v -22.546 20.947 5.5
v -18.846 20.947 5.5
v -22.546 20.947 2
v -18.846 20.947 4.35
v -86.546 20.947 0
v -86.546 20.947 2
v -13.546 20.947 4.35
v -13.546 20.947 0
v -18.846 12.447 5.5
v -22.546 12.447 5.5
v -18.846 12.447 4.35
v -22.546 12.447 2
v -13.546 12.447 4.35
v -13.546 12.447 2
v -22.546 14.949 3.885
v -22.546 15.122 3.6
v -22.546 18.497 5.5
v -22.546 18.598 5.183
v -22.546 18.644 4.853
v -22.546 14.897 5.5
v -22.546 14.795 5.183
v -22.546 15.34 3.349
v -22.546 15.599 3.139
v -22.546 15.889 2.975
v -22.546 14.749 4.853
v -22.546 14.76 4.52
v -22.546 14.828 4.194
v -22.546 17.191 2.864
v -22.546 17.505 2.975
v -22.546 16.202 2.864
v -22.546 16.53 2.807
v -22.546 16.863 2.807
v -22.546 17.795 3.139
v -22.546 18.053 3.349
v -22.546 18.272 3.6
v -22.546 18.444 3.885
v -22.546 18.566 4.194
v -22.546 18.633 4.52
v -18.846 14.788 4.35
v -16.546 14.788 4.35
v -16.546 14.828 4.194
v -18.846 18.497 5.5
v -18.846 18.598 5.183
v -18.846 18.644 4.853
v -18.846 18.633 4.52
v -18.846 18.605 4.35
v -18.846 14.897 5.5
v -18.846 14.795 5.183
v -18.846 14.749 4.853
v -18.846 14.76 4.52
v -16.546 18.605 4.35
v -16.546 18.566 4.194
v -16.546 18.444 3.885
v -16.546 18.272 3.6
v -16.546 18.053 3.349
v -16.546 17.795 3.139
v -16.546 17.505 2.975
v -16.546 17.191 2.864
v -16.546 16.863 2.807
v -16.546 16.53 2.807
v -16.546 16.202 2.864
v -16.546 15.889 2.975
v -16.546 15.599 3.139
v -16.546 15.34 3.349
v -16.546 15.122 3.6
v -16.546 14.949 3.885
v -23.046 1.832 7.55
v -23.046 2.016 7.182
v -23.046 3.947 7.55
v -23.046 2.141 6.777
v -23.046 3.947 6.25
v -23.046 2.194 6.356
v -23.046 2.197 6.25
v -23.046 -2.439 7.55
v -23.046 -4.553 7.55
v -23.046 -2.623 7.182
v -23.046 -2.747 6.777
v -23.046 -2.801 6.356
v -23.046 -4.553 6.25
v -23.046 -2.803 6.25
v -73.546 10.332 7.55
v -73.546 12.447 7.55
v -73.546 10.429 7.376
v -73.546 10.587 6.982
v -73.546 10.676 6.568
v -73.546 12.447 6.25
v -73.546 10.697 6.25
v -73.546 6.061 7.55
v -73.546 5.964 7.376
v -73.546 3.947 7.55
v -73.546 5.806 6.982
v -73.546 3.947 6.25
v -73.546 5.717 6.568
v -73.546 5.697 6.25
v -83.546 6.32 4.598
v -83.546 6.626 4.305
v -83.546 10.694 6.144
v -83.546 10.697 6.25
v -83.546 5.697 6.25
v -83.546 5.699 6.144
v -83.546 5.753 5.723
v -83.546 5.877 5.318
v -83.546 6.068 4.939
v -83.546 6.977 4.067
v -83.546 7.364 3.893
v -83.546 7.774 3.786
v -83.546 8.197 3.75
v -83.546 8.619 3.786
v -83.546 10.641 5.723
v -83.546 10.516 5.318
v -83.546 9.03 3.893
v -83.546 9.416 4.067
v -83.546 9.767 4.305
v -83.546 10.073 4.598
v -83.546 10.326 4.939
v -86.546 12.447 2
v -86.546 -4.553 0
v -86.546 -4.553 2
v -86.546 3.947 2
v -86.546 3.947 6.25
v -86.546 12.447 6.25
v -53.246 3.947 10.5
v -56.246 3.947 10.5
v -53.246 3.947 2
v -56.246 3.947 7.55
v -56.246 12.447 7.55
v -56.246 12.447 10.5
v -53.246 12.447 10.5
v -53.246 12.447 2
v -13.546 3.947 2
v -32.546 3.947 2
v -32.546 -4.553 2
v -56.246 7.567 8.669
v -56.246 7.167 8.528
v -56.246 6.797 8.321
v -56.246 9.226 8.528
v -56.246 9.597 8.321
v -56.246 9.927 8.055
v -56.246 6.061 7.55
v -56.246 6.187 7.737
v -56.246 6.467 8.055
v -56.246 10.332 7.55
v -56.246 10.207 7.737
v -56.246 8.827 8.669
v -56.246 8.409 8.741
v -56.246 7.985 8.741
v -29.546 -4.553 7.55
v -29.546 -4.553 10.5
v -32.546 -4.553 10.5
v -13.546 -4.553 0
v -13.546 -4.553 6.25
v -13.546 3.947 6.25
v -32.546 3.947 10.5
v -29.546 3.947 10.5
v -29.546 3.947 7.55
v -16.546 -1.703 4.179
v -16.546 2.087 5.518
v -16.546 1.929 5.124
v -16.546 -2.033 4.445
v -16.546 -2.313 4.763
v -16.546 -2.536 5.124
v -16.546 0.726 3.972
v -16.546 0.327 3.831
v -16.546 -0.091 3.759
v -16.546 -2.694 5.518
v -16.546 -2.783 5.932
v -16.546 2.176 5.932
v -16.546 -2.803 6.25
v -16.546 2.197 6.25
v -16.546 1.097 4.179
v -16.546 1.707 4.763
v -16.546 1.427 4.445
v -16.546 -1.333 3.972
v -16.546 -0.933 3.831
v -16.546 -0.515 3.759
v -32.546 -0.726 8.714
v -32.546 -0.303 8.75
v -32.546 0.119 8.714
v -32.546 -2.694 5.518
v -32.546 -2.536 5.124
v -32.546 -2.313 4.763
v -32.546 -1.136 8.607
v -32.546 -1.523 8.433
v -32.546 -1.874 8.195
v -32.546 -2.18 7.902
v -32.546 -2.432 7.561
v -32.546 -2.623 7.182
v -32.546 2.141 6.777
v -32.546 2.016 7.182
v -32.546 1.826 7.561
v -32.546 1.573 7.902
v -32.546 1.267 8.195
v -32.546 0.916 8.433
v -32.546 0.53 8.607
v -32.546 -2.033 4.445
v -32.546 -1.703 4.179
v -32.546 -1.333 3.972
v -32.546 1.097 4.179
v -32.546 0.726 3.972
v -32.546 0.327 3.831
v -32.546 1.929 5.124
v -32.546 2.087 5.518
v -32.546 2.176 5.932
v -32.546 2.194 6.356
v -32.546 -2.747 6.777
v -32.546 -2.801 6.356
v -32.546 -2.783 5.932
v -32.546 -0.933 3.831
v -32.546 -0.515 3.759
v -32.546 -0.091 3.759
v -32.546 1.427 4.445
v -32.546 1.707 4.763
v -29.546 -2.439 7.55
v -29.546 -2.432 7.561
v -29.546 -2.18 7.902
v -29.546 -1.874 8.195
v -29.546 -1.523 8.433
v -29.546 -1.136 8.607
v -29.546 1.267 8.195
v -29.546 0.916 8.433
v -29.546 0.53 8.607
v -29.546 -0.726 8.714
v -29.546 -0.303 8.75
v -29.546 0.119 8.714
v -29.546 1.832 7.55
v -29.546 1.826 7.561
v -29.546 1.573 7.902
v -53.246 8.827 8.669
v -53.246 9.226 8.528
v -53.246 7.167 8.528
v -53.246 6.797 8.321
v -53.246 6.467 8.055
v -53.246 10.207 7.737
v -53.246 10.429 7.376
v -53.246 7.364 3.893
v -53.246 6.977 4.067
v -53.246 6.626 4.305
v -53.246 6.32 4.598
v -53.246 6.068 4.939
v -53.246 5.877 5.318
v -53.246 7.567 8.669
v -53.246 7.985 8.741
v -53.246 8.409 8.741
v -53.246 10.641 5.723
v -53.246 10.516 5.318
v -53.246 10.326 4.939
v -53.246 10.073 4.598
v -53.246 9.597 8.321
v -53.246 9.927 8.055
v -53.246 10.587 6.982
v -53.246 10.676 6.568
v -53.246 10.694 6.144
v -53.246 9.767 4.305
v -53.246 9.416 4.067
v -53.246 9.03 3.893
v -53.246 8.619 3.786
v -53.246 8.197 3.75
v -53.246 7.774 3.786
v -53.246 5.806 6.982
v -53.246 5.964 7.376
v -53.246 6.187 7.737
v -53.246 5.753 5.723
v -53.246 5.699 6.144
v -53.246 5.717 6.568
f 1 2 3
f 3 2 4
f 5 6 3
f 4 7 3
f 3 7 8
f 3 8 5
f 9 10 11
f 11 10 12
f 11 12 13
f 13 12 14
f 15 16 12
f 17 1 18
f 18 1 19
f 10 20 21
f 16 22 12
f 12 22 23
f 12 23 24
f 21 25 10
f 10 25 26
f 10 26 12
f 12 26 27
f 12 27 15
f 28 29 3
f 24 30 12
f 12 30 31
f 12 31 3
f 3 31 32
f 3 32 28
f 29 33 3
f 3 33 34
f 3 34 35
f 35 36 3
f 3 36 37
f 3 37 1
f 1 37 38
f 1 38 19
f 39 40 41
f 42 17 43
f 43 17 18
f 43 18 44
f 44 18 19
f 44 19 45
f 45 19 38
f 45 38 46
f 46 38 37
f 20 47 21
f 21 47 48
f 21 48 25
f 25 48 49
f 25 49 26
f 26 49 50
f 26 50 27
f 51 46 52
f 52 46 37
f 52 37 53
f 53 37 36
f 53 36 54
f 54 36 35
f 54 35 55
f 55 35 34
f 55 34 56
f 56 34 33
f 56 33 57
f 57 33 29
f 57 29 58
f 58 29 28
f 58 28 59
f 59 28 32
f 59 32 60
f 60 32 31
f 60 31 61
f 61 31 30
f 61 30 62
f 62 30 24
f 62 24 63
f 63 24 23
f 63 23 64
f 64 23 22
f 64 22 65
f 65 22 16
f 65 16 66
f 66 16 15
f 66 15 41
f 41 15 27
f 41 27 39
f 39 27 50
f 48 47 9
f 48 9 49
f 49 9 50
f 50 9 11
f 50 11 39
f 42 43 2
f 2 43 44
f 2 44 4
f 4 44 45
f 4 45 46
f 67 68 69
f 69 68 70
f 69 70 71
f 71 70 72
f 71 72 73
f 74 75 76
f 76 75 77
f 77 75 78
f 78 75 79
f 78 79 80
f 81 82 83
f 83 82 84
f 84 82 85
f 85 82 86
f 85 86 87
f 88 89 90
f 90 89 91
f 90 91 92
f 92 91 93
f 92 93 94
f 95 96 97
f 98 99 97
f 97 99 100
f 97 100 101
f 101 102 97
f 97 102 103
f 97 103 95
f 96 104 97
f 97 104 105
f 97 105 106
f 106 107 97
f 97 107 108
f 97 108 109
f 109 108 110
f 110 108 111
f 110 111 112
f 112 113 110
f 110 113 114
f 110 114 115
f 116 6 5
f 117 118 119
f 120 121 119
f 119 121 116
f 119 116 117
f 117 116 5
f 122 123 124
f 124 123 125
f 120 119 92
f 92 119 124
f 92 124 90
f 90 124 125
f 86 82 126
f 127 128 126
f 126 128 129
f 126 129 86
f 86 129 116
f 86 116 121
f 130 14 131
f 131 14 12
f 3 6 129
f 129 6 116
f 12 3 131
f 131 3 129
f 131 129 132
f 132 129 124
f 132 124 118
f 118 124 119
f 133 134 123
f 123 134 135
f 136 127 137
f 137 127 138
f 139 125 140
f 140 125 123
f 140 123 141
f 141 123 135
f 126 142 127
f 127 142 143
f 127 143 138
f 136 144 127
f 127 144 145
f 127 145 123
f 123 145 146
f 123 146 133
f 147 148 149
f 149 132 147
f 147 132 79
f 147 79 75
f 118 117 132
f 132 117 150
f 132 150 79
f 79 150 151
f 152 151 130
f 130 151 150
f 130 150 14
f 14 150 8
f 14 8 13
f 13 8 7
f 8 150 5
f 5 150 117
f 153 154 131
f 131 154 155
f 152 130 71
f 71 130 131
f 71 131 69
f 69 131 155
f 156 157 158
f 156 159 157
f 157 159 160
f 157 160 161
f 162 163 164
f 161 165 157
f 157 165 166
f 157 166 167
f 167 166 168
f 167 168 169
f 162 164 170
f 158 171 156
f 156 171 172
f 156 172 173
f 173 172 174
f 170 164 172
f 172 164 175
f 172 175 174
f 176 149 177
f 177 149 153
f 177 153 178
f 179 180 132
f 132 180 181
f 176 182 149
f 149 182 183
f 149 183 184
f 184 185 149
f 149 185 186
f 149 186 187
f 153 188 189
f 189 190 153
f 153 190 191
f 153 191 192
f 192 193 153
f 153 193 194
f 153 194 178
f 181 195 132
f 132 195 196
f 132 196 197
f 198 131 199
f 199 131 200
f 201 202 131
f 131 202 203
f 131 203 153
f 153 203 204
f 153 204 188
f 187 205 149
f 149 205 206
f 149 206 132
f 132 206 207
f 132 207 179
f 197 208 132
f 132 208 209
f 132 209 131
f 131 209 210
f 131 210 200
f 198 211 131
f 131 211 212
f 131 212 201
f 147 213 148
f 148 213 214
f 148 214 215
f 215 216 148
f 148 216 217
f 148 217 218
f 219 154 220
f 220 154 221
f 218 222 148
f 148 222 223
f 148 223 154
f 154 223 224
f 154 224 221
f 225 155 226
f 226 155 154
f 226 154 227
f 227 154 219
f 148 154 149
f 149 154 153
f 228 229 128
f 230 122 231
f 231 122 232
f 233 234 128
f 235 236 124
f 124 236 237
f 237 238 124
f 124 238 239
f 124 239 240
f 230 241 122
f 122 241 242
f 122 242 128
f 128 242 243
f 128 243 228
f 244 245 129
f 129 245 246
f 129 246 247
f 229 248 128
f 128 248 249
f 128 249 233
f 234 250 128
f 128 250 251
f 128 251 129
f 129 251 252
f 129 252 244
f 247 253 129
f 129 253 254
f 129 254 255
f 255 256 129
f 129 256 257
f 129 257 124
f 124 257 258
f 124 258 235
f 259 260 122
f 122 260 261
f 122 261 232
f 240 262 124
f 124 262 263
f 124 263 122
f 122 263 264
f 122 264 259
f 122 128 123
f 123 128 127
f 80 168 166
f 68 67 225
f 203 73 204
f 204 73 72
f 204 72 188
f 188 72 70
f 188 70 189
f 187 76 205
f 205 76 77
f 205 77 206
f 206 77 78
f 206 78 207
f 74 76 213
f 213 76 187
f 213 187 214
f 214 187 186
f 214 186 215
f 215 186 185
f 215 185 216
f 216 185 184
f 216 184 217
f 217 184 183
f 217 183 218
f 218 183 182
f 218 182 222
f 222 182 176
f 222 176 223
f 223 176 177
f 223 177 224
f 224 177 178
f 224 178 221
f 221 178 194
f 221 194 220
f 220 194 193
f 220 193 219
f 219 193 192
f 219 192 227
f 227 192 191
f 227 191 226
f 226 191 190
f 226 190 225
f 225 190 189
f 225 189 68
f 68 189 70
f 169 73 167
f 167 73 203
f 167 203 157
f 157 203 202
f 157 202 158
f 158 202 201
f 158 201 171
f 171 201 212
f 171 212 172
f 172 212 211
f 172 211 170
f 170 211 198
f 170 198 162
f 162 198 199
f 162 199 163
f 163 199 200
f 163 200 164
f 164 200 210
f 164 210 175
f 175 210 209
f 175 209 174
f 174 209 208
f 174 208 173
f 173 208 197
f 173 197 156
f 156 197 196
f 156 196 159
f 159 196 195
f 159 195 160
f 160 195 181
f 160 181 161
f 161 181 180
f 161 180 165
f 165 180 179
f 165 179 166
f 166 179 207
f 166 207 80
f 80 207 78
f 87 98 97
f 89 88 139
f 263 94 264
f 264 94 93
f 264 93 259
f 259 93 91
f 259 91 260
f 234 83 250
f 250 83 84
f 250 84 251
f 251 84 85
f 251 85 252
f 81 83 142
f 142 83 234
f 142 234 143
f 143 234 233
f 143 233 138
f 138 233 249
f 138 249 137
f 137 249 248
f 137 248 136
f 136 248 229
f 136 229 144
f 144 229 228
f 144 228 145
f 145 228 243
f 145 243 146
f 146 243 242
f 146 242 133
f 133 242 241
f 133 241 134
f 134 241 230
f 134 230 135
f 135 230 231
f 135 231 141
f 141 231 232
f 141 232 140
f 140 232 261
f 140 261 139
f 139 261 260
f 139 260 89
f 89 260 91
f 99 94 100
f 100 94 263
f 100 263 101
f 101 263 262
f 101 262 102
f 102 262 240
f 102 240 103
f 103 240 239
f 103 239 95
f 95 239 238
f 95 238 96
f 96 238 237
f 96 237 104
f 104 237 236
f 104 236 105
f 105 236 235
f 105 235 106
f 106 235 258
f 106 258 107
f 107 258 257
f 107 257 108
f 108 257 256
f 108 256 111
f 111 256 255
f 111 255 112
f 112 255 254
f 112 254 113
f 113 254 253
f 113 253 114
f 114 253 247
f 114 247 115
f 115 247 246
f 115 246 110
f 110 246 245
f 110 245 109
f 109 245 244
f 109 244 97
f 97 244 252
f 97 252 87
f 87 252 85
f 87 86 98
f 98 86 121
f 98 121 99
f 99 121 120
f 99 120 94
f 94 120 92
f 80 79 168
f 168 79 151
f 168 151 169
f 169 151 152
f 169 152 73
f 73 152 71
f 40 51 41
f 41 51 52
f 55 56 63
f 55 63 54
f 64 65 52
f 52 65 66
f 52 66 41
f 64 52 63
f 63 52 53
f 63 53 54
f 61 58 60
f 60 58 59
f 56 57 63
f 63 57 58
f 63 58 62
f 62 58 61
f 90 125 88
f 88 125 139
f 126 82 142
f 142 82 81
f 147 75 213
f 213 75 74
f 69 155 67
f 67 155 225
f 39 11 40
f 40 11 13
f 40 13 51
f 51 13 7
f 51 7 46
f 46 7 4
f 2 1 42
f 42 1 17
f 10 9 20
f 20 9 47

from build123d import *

# Parameters (mm, degrees)
CROQUIS1_W              = 73
CROQUIS1_H              = 25.5
SALIENTE_EXTRUIR1_DEPTH = 2
CROQUIS2_W              = 3
CROQUIS2_H              = 8.5
SALIENTE_EXTRUIR2_DEPTH = 8.5
CROQUIS4_W              = 13
CROQUIS4_H              = 8.5
CROQUIS4_W_2            = 27.3
SALIENTE_EXTRUIR3_DEPTH = 6.05
CORTAR_EXTRUIR1_START   = -16
CROQUIS5_R              = 2.5
CORTAR_EXTRUIR1_DEPTH   = 16
CORTAR_EXTRUIR2_START   = -30.3
CROQUIS6_R              = 2.5
CORTAR_EXTRUIR2_DEPTH   = 30.3
CROQUIS7_W              = 10
CROQUIS7_H              = 8.5
CROQUIS7_W_2            = 6.5
CORTAR_EXTRUIR3_DEPTH   = 1.8
CROQUIS8_W              = 3
CROQUIS8_H              = 8.5
SALIENTE_EXTRUIR4_DEPTH = 4.85
CROQUIS9_R              = 1.95
CORTAR_EXTRUIR4_DEPTH   = 6
CORTAR_EXTRUIR5_START   = -3.65
CROQUIS10_W             = 3
CROQUIS10_H             = 8.5
CORTAR_EXTRUIR5_DEPTH   = 3.65
CORTAR_EXTRUIR6_START   = -4.25
CROQUIS11_W             = 3
CROQUIS11_H             = 8.5
CORTAR_EXTRUIR6_DEPTH   = 4.25
CROQUIS12_W             = 17.3
CROQUIS12_H             = 8.5
CROQUIS12_W_2           = 6.5
CORTAR_EXTRUIR7_DEPTH   = 0.5
CROQUIS13_W             = 5.3
CROQUIS13_H             = 8.5
CORTAR_EXTRUIR8_DEPTH   = 2.5
CROQUIS15_W             = 4.5
CROQUIS15_H             = 8.5
CORTAR_EXTRUIR9_DEPTH   = 5


with BuildPart() as part:
    # Croquis1 → Saliente-Extruir1 (new body)
    with BuildSketch(Plane.XY):
        with Locations((-50.046391753, 8.196735395)):
            Rectangle(CROQUIS1_W, CROQUIS1_H)
    extrude(amount=SALIENTE_EXTRUIR1_DEPTH)

    # Croquis2 → Saliente-Extruir2 (add)
    with BuildSketch(Plane.XY.offset(2)):
        with Locations((-15.046391753, 16.696735395)):
            Rectangle(CROQUIS2_W, CROQUIS2_H)
        with Locations((-15.046391753, -0.303264605)):
            Rectangle(CROQUIS2_W, CROQUIS2_H)
        with Locations((-85.046391753, 8.196735395)):
            Rectangle(CROQUIS2_W, CROQUIS2_H)
        with Locations((-21.046391753, 16.696735395)):
            Rectangle(CROQUIS2_W, CROQUIS2_H)
        with Locations((-31.046391753, -0.303264605)):
            Rectangle(CROQUIS2_W, CROQUIS2_H)
        with Locations((-54.746391753, 8.196735395)):
            Rectangle(CROQUIS2_W, CROQUIS2_H)
    extrude(amount=SALIENTE_EXTRUIR2_DEPTH)

    # Croquis4 → Saliente-Extruir3 (add)
    with BuildSketch(Plane.XY.offset(2)):
        with Locations((-23.046391753, -0.303264605)):
            Rectangle(CROQUIS4_W, CROQUIS4_H)
        with Locations((-69.896391753, 8.196735395)):
            Rectangle(CROQUIS4_W_2, CROQUIS4_H)
    extrude(amount=SALIENTE_EXTRUIR3_DEPTH)

    # Croquis5 → Cortar-Extruir1 (cut)
    with BuildSketch(Plane.ZY.offset(32.546391753).offset(CORTAR_EXTRUIR1_START)):
        with Locations((6.25, -0.303264605)):
            Circle(CROQUIS5_R)
    extrude(amount=CORTAR_EXTRUIR1_DEPTH, mode=Mode.SUBTRACT)

    # Croquis6 → Cortar-Extruir2 (cut)
    with BuildSketch(Plane(origin=(-53.246391753, 0, 0), x_dir=(0, 0, -1), z_dir=(1, 0, 0)).offset(CORTAR_EXTRUIR2_START)):
        with Locations((-6.25, 8.196735395)):
            Circle(CROQUIS6_R)
    extrude(amount=CORTAR_EXTRUIR2_DEPTH, mode=Mode.SUBTRACT)

    # Croquis7 → Cortar-Extruir3 (cut)
    with BuildSketch(Plane.XY.offset(8.05)):
        with Locations((-78.546391753, 8.196735395)):
            Rectangle(CROQUIS7_W, CROQUIS7_H)
        with Locations((-19.796391753, -0.303264605)):
            Rectangle(CROQUIS7_W_2, CROQUIS7_H)
    extrude(amount=-CORTAR_EXTRUIR3_DEPTH, mode=Mode.SUBTRACT)

    # Croquis8 → Saliente-Extruir4 (add)
    with BuildSketch(Plane.XY.offset(2)):
        with Locations((-18.046391753, 16.696735395)):
            Rectangle(CROQUIS8_W, CROQUIS8_H)
    extrude(amount=SALIENTE_EXTRUIR4_DEPTH)

    # Croquis9 → Cortar-Extruir4 (cut)
    with BuildSketch(Plane.ZY.offset(22.546391753)):
        with Locations((4.75, 16.696735395)):
            Circle(CROQUIS9_R)
    extrude(amount=-CORTAR_EXTRUIR4_DEPTH, mode=Mode.SUBTRACT)

    # Croquis10 → Cortar-Extruir5 (cut)
    with BuildSketch(Plane.XY.offset(10.5).offset(CORTAR_EXTRUIR5_START)):
        with Locations((-15.046391753, 16.696735395)):
            Rectangle(CROQUIS10_W, CROQUIS10_H)
    extrude(amount=CORTAR_EXTRUIR5_DEPTH, mode=Mode.SUBTRACT)

    # Croquis11 → Cortar-Extruir6 (cut)
    with BuildSketch(Plane.XY.offset(10.5).offset(CORTAR_EXTRUIR6_START)):
        with Locations((-15.046391753, -0.303264605)):
            Rectangle(CROQUIS11_W, CROQUIS11_H)
        with Locations((-85.046391753, 8.196735395)):
            Rectangle(CROQUIS11_W, CROQUIS11_H)
    extrude(amount=CORTAR_EXTRUIR6_DEPTH, mode=Mode.SUBTRACT)

    # Croquis12 → Cortar-Extruir7 (cut)
    with BuildSketch(Plane.XY.offset(8.05)):
        with Locations((-64.896391753, 8.196735395)):
            Rectangle(CROQUIS12_W, CROQUIS12_H)
        with Locations((-26.296391753, -0.303264605)):
            Rectangle(CROQUIS12_W_2, CROQUIS12_H)
    extrude(amount=-CORTAR_EXTRUIR7_DEPTH, mode=Mode.SUBTRACT)

    # Croquis13 → Cortar-Extruir8 (cut)
    with BuildSketch(Plane.XY.offset(6.85)):
        with Locations((-16.196391753, 16.696735395)):
            Rectangle(CROQUIS13_W, CROQUIS13_H)
    extrude(amount=-CORTAR_EXTRUIR8_DEPTH, mode=Mode.SUBTRACT)

    # Croquis15 → Cortar-Extruir9 (cut)
    with BuildSketch(Plane.XY.offset(10.5)):
        with Locations((-20.296391753, 16.696735395)):
            Rectangle(CROQUIS15_W, CROQUIS15_H)
    extrude(amount=-CORTAR_EXTRUIR9_DEPTH, mode=Mode.SUBTRACT)


solid = part.part
